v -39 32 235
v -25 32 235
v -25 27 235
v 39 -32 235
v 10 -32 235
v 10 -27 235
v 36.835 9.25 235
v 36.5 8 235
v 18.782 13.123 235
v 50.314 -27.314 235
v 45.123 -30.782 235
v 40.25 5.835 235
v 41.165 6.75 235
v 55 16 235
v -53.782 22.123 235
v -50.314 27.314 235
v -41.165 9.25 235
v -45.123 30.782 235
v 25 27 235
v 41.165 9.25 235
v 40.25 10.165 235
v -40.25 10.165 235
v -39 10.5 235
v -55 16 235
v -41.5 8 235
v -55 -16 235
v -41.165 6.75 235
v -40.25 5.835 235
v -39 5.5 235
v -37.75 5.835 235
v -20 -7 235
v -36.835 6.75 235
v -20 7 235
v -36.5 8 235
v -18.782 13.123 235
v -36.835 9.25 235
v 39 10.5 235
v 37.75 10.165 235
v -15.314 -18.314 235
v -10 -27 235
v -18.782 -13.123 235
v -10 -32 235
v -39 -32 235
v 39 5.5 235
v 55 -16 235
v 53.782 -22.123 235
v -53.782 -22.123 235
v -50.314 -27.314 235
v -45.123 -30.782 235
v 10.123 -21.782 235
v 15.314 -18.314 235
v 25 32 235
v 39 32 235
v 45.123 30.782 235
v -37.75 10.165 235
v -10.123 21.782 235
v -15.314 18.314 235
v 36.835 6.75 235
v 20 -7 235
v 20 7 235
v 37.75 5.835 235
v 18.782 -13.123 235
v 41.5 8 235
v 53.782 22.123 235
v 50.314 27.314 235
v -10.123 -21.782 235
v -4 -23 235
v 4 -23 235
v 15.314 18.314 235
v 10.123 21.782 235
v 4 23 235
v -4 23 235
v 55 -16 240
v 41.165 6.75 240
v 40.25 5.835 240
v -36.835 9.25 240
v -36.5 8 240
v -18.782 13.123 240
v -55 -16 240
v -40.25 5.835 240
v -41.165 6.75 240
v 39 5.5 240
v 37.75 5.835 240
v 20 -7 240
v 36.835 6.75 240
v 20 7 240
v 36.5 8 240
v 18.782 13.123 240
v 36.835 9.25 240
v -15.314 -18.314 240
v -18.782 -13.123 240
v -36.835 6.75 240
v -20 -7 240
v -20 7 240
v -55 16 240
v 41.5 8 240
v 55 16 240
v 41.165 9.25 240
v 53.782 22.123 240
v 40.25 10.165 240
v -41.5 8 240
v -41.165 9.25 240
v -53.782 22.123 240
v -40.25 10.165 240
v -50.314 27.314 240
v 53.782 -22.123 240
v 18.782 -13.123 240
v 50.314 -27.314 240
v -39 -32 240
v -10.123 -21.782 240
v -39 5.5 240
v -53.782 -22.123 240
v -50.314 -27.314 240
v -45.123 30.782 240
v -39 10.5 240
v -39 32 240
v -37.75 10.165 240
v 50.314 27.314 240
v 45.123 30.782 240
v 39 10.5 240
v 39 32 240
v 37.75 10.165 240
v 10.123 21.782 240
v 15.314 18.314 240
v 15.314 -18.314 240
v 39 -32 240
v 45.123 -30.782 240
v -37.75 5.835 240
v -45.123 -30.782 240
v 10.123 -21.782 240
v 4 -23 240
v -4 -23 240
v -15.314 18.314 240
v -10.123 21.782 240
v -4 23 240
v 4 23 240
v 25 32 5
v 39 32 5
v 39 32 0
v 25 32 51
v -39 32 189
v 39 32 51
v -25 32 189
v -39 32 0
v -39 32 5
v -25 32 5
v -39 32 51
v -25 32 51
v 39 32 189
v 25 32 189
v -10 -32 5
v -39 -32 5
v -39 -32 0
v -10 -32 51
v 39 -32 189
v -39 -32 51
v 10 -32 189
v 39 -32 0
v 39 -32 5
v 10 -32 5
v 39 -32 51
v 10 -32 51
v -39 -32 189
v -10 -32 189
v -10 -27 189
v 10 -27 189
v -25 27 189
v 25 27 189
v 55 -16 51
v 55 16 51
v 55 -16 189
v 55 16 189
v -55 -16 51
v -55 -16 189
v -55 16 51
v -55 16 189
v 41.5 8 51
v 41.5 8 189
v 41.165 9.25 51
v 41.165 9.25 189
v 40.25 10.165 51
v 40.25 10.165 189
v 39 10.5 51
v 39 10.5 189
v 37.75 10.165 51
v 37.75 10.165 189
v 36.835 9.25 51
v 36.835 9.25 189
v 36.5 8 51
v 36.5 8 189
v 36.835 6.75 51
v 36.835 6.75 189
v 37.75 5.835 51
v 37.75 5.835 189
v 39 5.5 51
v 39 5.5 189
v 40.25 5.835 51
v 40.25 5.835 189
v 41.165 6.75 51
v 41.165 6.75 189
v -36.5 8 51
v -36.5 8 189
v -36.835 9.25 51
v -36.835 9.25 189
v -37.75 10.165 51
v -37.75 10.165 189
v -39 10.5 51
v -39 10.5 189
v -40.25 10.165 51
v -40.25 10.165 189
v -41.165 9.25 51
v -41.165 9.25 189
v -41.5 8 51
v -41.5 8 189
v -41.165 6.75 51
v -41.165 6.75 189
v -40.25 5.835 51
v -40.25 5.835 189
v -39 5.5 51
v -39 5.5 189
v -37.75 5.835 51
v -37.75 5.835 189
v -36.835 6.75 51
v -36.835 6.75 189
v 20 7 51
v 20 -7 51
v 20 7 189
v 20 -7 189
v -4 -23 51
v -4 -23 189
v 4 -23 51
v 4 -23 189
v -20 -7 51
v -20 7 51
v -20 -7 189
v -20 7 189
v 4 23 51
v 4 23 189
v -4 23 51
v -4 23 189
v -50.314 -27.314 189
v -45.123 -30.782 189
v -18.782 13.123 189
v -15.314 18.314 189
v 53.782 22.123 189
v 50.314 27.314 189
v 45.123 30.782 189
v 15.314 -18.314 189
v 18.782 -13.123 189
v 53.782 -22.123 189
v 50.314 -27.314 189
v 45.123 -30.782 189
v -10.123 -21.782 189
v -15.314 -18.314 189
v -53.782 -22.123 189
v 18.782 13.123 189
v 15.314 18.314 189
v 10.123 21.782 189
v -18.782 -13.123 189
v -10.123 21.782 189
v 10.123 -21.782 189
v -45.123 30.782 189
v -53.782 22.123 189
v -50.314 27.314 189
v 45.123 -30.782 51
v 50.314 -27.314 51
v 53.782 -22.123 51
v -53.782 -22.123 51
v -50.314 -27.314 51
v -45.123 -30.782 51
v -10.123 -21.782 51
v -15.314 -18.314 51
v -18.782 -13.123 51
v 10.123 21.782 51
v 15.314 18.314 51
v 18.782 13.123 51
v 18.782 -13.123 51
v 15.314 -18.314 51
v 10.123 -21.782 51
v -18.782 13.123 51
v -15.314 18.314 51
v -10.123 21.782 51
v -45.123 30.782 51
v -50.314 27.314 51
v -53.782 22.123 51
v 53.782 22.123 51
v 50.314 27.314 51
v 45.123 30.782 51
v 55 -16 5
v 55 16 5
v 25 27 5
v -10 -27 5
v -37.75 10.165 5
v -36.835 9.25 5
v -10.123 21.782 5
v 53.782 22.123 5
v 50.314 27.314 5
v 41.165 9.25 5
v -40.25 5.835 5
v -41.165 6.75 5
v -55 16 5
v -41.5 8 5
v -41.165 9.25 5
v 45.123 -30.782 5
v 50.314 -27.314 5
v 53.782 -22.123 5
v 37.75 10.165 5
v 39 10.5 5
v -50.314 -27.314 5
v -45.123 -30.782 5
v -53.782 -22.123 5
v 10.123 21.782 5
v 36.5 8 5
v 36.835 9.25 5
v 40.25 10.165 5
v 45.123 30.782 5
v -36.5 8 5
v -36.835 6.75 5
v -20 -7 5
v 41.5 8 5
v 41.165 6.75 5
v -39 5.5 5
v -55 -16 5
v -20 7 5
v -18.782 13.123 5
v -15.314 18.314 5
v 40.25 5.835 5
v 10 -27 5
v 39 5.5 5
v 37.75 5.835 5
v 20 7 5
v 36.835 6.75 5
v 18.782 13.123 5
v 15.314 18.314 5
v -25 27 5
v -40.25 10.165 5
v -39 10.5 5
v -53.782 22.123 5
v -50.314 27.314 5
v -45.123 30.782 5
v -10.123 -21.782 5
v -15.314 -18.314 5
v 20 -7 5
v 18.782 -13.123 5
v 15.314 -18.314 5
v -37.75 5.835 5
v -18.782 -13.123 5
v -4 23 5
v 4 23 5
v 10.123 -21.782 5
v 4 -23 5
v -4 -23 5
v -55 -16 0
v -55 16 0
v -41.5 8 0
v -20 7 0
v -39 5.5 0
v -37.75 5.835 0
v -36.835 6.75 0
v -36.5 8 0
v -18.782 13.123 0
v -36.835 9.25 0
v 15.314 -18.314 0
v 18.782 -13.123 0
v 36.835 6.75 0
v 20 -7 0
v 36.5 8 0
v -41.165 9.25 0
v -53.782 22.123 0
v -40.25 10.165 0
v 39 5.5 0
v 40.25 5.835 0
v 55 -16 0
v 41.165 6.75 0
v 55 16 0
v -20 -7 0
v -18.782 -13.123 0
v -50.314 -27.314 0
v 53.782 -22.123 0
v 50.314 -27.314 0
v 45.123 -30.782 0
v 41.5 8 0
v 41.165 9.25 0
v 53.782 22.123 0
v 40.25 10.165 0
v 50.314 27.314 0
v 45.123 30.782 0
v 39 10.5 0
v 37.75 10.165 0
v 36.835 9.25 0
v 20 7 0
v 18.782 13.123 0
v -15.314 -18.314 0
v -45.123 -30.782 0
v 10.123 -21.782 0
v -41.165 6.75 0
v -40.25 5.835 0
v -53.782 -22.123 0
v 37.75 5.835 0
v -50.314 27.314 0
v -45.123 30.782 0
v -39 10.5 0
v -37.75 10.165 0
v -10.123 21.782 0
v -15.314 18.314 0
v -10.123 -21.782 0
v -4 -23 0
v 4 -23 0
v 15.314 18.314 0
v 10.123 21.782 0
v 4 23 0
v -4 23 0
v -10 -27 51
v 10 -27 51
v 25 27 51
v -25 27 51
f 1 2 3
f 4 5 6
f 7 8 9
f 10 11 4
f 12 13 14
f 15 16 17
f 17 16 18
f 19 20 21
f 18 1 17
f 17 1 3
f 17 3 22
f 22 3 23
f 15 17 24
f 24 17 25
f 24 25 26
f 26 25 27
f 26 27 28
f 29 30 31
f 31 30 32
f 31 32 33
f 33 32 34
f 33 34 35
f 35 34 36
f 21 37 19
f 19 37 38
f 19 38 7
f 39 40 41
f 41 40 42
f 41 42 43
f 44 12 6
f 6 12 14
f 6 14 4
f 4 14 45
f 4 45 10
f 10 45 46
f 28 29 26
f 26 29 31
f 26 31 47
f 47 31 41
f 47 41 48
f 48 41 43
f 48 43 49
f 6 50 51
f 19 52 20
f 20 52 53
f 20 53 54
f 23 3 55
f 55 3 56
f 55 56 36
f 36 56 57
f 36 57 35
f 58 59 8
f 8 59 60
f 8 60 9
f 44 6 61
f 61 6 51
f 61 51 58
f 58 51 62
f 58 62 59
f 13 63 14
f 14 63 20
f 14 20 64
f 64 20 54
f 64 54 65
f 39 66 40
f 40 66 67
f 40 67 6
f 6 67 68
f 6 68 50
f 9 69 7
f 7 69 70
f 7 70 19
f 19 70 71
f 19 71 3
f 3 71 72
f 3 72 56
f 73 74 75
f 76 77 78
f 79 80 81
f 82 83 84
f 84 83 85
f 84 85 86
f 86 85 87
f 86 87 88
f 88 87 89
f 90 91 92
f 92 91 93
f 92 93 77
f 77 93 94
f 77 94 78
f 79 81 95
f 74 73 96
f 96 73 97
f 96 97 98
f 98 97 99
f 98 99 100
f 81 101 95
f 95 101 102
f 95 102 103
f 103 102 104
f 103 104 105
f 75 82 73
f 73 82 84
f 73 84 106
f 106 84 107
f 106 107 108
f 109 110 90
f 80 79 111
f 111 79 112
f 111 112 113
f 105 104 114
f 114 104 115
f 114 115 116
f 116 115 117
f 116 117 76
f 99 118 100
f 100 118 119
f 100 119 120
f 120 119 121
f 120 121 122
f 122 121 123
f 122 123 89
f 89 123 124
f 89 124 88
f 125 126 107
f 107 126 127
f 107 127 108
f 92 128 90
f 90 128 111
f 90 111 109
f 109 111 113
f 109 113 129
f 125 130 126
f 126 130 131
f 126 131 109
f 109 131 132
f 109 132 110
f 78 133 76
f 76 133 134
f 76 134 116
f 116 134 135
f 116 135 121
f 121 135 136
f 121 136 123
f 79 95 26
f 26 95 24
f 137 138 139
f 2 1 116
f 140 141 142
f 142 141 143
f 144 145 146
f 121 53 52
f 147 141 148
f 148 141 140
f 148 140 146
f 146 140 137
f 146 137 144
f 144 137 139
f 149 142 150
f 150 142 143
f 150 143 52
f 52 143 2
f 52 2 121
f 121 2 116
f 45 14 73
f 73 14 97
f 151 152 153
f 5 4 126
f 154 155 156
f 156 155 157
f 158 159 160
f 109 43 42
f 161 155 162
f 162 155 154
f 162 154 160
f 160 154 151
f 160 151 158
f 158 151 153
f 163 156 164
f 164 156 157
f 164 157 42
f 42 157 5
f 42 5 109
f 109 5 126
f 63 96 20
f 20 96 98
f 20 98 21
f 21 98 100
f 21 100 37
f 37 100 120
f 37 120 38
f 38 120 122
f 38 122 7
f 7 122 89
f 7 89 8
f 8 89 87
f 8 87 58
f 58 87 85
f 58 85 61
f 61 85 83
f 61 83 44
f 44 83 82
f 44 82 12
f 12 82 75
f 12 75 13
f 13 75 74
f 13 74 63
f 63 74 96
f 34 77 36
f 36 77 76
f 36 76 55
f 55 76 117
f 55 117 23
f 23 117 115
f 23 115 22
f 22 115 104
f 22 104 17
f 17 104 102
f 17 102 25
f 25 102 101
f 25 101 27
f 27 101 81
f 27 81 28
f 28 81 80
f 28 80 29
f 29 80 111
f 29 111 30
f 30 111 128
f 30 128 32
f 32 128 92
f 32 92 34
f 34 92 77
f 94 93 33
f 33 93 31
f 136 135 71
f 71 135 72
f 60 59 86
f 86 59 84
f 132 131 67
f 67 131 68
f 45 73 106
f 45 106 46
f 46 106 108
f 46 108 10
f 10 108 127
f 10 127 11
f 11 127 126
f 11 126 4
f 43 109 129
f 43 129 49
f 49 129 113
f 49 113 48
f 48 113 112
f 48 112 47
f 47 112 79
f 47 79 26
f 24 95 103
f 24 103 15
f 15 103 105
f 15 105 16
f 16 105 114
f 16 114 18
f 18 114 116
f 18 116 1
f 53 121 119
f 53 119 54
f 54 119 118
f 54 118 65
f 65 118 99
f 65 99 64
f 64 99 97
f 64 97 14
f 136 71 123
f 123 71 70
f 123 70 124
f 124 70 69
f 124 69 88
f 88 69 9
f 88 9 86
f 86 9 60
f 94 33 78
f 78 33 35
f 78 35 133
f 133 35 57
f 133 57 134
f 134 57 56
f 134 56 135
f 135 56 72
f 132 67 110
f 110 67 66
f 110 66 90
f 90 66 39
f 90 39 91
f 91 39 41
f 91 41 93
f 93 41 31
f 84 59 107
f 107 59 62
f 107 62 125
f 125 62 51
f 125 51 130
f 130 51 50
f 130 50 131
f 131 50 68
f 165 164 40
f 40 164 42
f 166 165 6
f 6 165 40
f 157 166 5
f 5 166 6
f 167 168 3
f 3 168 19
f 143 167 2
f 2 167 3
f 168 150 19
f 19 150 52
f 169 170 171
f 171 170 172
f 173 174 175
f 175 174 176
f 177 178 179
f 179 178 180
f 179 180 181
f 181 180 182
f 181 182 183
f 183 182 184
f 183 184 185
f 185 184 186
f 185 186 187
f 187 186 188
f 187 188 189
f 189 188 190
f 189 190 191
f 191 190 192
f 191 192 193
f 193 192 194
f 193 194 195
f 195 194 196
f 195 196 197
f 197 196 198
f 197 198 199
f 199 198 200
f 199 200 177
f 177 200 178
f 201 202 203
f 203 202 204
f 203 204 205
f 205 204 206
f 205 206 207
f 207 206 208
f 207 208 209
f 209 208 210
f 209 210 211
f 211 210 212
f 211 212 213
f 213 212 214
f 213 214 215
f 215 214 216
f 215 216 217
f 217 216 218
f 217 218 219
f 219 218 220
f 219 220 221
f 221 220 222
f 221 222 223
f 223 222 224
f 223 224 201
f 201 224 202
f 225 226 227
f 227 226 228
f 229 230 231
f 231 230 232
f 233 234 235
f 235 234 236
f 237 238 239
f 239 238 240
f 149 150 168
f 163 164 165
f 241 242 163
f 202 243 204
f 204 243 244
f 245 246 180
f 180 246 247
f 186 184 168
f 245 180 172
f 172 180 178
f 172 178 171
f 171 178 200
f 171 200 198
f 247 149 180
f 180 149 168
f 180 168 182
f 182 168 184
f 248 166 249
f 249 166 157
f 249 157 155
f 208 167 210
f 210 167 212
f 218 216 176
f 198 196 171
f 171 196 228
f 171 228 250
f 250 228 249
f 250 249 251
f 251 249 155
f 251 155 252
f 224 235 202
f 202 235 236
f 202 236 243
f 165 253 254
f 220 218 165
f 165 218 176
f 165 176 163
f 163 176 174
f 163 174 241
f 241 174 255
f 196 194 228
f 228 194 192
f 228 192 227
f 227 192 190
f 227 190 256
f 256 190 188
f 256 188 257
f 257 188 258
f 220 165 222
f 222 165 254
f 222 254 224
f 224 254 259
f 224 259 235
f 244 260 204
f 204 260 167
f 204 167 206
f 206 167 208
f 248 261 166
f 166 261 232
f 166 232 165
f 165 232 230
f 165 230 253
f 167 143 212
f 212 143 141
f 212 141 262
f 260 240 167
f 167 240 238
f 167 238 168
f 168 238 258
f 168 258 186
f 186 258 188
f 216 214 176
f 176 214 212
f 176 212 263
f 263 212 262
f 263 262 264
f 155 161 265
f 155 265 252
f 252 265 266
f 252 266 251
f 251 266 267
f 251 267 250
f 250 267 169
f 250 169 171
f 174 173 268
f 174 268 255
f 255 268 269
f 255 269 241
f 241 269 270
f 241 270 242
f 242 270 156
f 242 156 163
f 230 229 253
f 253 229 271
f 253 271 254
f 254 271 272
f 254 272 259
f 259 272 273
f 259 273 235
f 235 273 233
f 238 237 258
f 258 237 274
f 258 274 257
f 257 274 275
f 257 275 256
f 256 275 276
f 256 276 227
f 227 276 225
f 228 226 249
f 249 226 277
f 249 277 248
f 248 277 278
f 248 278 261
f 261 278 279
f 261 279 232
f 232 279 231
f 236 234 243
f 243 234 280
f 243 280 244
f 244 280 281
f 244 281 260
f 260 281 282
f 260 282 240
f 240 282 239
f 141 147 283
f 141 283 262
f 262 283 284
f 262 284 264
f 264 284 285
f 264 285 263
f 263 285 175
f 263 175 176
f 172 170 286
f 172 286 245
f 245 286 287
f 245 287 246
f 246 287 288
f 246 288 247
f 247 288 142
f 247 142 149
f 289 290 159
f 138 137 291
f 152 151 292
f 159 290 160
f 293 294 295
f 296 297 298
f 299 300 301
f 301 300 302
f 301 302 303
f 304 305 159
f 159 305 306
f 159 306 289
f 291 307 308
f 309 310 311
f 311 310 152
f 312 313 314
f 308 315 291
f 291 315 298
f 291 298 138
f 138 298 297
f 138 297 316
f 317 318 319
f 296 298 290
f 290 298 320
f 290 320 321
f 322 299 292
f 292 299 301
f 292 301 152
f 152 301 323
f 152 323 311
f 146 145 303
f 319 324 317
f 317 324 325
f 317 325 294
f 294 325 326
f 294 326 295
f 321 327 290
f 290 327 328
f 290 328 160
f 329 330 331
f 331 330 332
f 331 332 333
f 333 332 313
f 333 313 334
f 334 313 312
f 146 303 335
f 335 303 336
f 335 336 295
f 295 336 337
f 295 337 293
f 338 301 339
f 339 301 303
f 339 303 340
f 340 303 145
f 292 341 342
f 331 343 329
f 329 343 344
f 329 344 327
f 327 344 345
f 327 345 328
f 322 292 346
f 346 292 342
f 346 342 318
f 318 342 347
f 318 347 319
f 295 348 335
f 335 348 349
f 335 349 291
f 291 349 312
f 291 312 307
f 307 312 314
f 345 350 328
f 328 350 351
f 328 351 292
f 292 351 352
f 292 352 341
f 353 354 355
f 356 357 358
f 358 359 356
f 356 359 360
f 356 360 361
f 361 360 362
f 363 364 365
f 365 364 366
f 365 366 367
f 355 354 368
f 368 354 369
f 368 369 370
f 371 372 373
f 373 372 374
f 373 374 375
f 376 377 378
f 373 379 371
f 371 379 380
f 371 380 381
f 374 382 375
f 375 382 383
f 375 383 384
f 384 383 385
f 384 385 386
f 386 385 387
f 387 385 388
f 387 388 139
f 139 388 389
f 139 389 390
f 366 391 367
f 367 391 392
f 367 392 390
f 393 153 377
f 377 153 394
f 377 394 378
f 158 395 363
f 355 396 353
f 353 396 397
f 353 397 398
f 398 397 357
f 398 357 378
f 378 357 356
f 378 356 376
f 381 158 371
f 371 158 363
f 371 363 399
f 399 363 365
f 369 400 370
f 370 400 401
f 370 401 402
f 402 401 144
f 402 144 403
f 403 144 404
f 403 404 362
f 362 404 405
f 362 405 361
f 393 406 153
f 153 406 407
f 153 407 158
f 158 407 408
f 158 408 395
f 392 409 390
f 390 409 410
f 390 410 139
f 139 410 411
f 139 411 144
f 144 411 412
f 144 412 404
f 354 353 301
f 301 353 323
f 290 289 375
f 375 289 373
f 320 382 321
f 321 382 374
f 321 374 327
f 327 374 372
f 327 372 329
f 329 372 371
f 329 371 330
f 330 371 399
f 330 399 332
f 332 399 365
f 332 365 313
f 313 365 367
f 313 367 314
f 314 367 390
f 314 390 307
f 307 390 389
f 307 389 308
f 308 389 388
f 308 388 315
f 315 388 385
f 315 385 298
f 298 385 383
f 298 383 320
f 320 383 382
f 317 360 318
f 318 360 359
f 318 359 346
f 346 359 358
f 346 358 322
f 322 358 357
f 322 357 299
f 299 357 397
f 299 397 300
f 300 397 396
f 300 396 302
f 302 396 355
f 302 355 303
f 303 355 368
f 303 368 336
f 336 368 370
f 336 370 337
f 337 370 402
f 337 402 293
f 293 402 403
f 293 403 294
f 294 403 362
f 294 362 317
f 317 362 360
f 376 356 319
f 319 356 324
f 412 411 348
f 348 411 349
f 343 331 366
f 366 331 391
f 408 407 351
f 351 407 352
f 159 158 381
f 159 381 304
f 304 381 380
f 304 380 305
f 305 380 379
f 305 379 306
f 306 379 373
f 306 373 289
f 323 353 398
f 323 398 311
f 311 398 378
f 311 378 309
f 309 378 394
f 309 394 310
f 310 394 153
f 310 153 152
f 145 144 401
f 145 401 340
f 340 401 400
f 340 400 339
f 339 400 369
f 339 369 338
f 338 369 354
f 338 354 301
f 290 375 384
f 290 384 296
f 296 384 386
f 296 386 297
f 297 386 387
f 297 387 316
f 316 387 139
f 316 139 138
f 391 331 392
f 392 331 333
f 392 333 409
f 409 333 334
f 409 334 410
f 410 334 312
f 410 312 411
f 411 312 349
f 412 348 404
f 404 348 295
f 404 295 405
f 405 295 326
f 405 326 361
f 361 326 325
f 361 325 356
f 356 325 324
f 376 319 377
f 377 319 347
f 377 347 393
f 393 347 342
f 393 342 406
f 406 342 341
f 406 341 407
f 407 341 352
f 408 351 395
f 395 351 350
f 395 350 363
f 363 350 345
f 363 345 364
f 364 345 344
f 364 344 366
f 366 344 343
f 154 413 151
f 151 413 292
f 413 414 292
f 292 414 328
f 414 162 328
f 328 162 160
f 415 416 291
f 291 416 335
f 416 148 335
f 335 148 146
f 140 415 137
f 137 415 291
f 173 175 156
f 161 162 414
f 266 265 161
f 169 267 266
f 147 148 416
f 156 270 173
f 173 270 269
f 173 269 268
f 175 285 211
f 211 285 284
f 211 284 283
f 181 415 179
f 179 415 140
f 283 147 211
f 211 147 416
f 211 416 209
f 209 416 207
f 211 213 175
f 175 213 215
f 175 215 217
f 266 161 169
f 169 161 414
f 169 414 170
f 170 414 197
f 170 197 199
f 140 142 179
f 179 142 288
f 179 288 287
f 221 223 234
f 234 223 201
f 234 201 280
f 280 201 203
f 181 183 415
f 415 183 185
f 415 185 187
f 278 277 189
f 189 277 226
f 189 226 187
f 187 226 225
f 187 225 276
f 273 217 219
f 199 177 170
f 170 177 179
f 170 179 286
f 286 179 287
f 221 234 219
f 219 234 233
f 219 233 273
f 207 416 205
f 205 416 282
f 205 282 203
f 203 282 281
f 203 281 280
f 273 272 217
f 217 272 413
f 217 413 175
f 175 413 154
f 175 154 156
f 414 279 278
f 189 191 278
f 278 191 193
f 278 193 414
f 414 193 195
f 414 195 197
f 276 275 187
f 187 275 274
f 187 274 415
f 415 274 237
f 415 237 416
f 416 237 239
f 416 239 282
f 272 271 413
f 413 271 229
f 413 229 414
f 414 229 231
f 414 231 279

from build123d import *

# Parameters (mm, degrees)
SKETCH1_W             = 110
SKETCH1_H             = 64
SKETCH1_R             = 2.5
SKETCH1_W_2           = 40
SKETCH1_H_2           = 46
BOSS_EXTRUDE1_DEPTH   = 5
FILLET1_R             = 16
FILLET2_R             = 16
SKETCH2_W             = 50
SKETCH2_H             = 5
SKETCH2_W_2           = 20
BOSS_EXTRUDE2_DEPTH   = 46
BOSS_EXTRUDE3_START   = 51
SKETCH1_2_W           = 110
SKETCH1_2_H           = 64
SKETCH1_2_R           = 2.5
SKETCH1_2_W_2         = 40
SKETCH1_2_H_2         = 46
BOSS_EXTRUDE3_DEPTH   = 69
FILLET3_R             = 16
MIRROR2_START         = 120
MIRROR2_OUTLINE_R     = 2.5
MIRROR2_DEPTH         = 69
MIRROR2_START_2       = 235
MIRROR2_2_OUTLINE_R   = 2.5
MIRROR2_2_DEPTH       = 5
MIRROR2_START_3       = 189
MIRROR2_3_OUTLINE_W   = 20
MIRROR2_3_OUTLINE_H   = 5
MIRROR2_3_OUTLINE_W_2 = 50
MIRROR2_3_DEPTH       = 46


# Read off the part's stored shape, not the designer's step: Mirror2
with BuildPart() as part:
    # Sketch1 → Boss-Extrude1 (new body)
    with BuildSketch(Plane.XY):
        Rectangle(SKETCH1_W, SKETCH1_H)
        with Locations((39, 8)):
            Circle(SKETCH1_R, mode=Mode.SUBTRACT)
        with Locations((-39, 8)):
            Circle(SKETCH1_R, mode=Mode.SUBTRACT)
        Rectangle(SKETCH1_W_2, SKETCH1_H_2, mode=Mode.SUBTRACT)
    extrude(amount=BOSS_EXTRUDE1_DEPTH)

    # Fillet1
    fillet1_edges = [part.edges().sort_by_distance(p)[0] for p in [
        (55, -32, 2.5),
        (-55, -32, 2.5),
        (-55, 32, 2.5),
        (55, 32, 2.5),
    ]]
    fillet(fillet1_edges, radius=FILLET1_R)

    # Fillet2
    fillet2_edges = [part.edges().sort_by_distance(p)[0] for p in [
        (20, -23, 2.5),
        (20, 23, 2.5),
        (-20, 23, 2.5),
        (-20, -23, 2.5),
    ]]
    fillet(fillet2_edges, radius=FILLET2_R)

    # Sketch2 → Boss-Extrude2 (add)
    with BuildSketch(Plane.XY.offset(5)):
        with Locations((0, 29.5)):
            Rectangle(SKETCH2_W, SKETCH2_H)
        with Locations((0, -29.5)):
            Rectangle(SKETCH2_W_2, SKETCH2_H)
    extrude(amount=BOSS_EXTRUDE2_DEPTH)

    # Sketch1<2> → Boss-Extrude3 (add)
    with BuildSketch(Plane.XY.offset(BOSS_EXTRUDE3_START)):
        Rectangle(SKETCH1_2_W, SKETCH1_2_H)
        with Locations((39, 8)):
            Circle(SKETCH1_2_R, mode=Mode.SUBTRACT)
        with Locations((-39, 8)):
            Circle(SKETCH1_2_R, mode=Mode.SUBTRACT)
        Rectangle(SKETCH1_2_W_2, SKETCH1_2_H_2, mode=Mode.SUBTRACT)
    extrude(amount=BOSS_EXTRUDE3_DEPTH)

    # Fillet3
    fillet3_edges = [part.edges().sort_by_distance(p)[0] for p in [
        (55, 32, 85.5),
        (-55, 32, 85.5),
        (-55, -32, 85.5),
        (55, -32, 85.5),
        (-20, -23, 85.5),
        (20, -23, 85.5),
        (20, 23, 85.5),
        (-20, 23, 85.5),
    ]]
    fillet(fillet3_edges, radius=FILLET3_R)

    # Mirror2 outline → Mirror2 (add)
    with BuildSketch(Plane.XY.offset(MIRROR2_START)):
        with BuildLine():
            ThreePointArc((39, -32), (50.313708499, -27.313708499), (55, -16))
            Line((55, -16), (55, 16))
            ThreePointArc((55, 16), (50.313708499, 27.313708499), (39, 32))
            Line((39, 32), (-39, 32))
            ThreePointArc((-39, 32), (-50.313708499, 27.313708499), (-55, 16))
            Line((-55, 16), (-55, -16))
            ThreePointArc((-55, -16), (-50.313708499, -27.313708499), (-39, -32))
            Line((-39, -32), (39, -32))
        make_face()
        with Locations((-39, 8)):
            Circle(MIRROR2_OUTLINE_R, mode=Mode.SUBTRACT)
        with BuildLine():
            Line((20, 7), (20, -7))
            ThreePointArc((20, -7), (15.313708499, -18.313708499), (4, -23))
            Line((4, -23), (-4, -23))
            ThreePointArc((-4, -23), (-15.313708499, -18.313708499), (-20, -7))
            Line((-20, -7), (-20, 7))
            ThreePointArc((-20, 7), (-15.313708499, 18.313708499), (-4, 23))
            Line((-4, 23), (4, 23))
            ThreePointArc((4, 23), (15.313708499, 18.313708499), (20, 7))
        make_face(mode=Mode.SUBTRACT)
        with Locations((39, 8)):
            Circle(MIRROR2_OUTLINE_R, mode=Mode.SUBTRACT)
    extrude(amount=MIRROR2_DEPTH)



with BuildPart() as body_2:
    # Mirror2 2 outline → Mirror2 2 (new body)
    with BuildSketch(Plane.XY.offset(MIRROR2_START_2)):
        with BuildLine():
            ThreePointArc((39, -32), (50.313708499, -27.313708499), (55, -16))
            Line((55, -16), (55, 16))
            ThreePointArc((55, 16), (50.313708499, 27.313708499), (39, 32))
            Line((39, 32), (-39, 32))
            ThreePointArc((-39, 32), (-50.313708499, 27.313708499), (-55, 16))
            Line((-55, 16), (-55, -16))
            ThreePointArc((-55, -16), (-50.313708499, -27.313708499), (-39, -32))
            Line((-39, -32), (39, -32))
        make_face()
        with Locations((-39, 8)):
            Circle(MIRROR2_2_OUTLINE_R, mode=Mode.SUBTRACT)
        with BuildLine():
            Line((20, 7), (20, -7))
            ThreePointArc((20, -7), (15.313708499, -18.313708499), (4, -23))
            Line((4, -23), (-4, -23))
            ThreePointArc((-4, -23), (-15.313708499, -18.313708499), (-20, -7))
            Line((-20, -7), (-20, 7))
            ThreePointArc((-20, 7), (-15.313708499, 18.313708499), (-4, 23))
            Line((-4, 23), (4, 23))
            ThreePointArc((4, 23), (15.313708499, 18.313708499), (20, 7))
        make_face(mode=Mode.SUBTRACT)
        with Locations((39, 8)):
            Circle(MIRROR2_2_OUTLINE_R, mode=Mode.SUBTRACT)
    extrude(amount=MIRROR2_2_DEPTH)


with BuildPart() as part_1:
    add(part.part)

    add(body_2.part)  # Mirror2 3 merges body 2
    # Mirror2 3 outline → Mirror2 3 (add)
    with BuildSketch(Plane.XY.offset(MIRROR2_START_3)):
        with Locations((0, -29.5)):
            Rectangle(MIRROR2_3_OUTLINE_W, MIRROR2_3_OUTLINE_H)
        with Locations((0, 29.5)):
            Rectangle(MIRROR2_3_OUTLINE_W_2, MIRROR2_3_OUTLINE_H)
    extrude(amount=MIRROR2_3_DEPTH)


solid = part_1.part
